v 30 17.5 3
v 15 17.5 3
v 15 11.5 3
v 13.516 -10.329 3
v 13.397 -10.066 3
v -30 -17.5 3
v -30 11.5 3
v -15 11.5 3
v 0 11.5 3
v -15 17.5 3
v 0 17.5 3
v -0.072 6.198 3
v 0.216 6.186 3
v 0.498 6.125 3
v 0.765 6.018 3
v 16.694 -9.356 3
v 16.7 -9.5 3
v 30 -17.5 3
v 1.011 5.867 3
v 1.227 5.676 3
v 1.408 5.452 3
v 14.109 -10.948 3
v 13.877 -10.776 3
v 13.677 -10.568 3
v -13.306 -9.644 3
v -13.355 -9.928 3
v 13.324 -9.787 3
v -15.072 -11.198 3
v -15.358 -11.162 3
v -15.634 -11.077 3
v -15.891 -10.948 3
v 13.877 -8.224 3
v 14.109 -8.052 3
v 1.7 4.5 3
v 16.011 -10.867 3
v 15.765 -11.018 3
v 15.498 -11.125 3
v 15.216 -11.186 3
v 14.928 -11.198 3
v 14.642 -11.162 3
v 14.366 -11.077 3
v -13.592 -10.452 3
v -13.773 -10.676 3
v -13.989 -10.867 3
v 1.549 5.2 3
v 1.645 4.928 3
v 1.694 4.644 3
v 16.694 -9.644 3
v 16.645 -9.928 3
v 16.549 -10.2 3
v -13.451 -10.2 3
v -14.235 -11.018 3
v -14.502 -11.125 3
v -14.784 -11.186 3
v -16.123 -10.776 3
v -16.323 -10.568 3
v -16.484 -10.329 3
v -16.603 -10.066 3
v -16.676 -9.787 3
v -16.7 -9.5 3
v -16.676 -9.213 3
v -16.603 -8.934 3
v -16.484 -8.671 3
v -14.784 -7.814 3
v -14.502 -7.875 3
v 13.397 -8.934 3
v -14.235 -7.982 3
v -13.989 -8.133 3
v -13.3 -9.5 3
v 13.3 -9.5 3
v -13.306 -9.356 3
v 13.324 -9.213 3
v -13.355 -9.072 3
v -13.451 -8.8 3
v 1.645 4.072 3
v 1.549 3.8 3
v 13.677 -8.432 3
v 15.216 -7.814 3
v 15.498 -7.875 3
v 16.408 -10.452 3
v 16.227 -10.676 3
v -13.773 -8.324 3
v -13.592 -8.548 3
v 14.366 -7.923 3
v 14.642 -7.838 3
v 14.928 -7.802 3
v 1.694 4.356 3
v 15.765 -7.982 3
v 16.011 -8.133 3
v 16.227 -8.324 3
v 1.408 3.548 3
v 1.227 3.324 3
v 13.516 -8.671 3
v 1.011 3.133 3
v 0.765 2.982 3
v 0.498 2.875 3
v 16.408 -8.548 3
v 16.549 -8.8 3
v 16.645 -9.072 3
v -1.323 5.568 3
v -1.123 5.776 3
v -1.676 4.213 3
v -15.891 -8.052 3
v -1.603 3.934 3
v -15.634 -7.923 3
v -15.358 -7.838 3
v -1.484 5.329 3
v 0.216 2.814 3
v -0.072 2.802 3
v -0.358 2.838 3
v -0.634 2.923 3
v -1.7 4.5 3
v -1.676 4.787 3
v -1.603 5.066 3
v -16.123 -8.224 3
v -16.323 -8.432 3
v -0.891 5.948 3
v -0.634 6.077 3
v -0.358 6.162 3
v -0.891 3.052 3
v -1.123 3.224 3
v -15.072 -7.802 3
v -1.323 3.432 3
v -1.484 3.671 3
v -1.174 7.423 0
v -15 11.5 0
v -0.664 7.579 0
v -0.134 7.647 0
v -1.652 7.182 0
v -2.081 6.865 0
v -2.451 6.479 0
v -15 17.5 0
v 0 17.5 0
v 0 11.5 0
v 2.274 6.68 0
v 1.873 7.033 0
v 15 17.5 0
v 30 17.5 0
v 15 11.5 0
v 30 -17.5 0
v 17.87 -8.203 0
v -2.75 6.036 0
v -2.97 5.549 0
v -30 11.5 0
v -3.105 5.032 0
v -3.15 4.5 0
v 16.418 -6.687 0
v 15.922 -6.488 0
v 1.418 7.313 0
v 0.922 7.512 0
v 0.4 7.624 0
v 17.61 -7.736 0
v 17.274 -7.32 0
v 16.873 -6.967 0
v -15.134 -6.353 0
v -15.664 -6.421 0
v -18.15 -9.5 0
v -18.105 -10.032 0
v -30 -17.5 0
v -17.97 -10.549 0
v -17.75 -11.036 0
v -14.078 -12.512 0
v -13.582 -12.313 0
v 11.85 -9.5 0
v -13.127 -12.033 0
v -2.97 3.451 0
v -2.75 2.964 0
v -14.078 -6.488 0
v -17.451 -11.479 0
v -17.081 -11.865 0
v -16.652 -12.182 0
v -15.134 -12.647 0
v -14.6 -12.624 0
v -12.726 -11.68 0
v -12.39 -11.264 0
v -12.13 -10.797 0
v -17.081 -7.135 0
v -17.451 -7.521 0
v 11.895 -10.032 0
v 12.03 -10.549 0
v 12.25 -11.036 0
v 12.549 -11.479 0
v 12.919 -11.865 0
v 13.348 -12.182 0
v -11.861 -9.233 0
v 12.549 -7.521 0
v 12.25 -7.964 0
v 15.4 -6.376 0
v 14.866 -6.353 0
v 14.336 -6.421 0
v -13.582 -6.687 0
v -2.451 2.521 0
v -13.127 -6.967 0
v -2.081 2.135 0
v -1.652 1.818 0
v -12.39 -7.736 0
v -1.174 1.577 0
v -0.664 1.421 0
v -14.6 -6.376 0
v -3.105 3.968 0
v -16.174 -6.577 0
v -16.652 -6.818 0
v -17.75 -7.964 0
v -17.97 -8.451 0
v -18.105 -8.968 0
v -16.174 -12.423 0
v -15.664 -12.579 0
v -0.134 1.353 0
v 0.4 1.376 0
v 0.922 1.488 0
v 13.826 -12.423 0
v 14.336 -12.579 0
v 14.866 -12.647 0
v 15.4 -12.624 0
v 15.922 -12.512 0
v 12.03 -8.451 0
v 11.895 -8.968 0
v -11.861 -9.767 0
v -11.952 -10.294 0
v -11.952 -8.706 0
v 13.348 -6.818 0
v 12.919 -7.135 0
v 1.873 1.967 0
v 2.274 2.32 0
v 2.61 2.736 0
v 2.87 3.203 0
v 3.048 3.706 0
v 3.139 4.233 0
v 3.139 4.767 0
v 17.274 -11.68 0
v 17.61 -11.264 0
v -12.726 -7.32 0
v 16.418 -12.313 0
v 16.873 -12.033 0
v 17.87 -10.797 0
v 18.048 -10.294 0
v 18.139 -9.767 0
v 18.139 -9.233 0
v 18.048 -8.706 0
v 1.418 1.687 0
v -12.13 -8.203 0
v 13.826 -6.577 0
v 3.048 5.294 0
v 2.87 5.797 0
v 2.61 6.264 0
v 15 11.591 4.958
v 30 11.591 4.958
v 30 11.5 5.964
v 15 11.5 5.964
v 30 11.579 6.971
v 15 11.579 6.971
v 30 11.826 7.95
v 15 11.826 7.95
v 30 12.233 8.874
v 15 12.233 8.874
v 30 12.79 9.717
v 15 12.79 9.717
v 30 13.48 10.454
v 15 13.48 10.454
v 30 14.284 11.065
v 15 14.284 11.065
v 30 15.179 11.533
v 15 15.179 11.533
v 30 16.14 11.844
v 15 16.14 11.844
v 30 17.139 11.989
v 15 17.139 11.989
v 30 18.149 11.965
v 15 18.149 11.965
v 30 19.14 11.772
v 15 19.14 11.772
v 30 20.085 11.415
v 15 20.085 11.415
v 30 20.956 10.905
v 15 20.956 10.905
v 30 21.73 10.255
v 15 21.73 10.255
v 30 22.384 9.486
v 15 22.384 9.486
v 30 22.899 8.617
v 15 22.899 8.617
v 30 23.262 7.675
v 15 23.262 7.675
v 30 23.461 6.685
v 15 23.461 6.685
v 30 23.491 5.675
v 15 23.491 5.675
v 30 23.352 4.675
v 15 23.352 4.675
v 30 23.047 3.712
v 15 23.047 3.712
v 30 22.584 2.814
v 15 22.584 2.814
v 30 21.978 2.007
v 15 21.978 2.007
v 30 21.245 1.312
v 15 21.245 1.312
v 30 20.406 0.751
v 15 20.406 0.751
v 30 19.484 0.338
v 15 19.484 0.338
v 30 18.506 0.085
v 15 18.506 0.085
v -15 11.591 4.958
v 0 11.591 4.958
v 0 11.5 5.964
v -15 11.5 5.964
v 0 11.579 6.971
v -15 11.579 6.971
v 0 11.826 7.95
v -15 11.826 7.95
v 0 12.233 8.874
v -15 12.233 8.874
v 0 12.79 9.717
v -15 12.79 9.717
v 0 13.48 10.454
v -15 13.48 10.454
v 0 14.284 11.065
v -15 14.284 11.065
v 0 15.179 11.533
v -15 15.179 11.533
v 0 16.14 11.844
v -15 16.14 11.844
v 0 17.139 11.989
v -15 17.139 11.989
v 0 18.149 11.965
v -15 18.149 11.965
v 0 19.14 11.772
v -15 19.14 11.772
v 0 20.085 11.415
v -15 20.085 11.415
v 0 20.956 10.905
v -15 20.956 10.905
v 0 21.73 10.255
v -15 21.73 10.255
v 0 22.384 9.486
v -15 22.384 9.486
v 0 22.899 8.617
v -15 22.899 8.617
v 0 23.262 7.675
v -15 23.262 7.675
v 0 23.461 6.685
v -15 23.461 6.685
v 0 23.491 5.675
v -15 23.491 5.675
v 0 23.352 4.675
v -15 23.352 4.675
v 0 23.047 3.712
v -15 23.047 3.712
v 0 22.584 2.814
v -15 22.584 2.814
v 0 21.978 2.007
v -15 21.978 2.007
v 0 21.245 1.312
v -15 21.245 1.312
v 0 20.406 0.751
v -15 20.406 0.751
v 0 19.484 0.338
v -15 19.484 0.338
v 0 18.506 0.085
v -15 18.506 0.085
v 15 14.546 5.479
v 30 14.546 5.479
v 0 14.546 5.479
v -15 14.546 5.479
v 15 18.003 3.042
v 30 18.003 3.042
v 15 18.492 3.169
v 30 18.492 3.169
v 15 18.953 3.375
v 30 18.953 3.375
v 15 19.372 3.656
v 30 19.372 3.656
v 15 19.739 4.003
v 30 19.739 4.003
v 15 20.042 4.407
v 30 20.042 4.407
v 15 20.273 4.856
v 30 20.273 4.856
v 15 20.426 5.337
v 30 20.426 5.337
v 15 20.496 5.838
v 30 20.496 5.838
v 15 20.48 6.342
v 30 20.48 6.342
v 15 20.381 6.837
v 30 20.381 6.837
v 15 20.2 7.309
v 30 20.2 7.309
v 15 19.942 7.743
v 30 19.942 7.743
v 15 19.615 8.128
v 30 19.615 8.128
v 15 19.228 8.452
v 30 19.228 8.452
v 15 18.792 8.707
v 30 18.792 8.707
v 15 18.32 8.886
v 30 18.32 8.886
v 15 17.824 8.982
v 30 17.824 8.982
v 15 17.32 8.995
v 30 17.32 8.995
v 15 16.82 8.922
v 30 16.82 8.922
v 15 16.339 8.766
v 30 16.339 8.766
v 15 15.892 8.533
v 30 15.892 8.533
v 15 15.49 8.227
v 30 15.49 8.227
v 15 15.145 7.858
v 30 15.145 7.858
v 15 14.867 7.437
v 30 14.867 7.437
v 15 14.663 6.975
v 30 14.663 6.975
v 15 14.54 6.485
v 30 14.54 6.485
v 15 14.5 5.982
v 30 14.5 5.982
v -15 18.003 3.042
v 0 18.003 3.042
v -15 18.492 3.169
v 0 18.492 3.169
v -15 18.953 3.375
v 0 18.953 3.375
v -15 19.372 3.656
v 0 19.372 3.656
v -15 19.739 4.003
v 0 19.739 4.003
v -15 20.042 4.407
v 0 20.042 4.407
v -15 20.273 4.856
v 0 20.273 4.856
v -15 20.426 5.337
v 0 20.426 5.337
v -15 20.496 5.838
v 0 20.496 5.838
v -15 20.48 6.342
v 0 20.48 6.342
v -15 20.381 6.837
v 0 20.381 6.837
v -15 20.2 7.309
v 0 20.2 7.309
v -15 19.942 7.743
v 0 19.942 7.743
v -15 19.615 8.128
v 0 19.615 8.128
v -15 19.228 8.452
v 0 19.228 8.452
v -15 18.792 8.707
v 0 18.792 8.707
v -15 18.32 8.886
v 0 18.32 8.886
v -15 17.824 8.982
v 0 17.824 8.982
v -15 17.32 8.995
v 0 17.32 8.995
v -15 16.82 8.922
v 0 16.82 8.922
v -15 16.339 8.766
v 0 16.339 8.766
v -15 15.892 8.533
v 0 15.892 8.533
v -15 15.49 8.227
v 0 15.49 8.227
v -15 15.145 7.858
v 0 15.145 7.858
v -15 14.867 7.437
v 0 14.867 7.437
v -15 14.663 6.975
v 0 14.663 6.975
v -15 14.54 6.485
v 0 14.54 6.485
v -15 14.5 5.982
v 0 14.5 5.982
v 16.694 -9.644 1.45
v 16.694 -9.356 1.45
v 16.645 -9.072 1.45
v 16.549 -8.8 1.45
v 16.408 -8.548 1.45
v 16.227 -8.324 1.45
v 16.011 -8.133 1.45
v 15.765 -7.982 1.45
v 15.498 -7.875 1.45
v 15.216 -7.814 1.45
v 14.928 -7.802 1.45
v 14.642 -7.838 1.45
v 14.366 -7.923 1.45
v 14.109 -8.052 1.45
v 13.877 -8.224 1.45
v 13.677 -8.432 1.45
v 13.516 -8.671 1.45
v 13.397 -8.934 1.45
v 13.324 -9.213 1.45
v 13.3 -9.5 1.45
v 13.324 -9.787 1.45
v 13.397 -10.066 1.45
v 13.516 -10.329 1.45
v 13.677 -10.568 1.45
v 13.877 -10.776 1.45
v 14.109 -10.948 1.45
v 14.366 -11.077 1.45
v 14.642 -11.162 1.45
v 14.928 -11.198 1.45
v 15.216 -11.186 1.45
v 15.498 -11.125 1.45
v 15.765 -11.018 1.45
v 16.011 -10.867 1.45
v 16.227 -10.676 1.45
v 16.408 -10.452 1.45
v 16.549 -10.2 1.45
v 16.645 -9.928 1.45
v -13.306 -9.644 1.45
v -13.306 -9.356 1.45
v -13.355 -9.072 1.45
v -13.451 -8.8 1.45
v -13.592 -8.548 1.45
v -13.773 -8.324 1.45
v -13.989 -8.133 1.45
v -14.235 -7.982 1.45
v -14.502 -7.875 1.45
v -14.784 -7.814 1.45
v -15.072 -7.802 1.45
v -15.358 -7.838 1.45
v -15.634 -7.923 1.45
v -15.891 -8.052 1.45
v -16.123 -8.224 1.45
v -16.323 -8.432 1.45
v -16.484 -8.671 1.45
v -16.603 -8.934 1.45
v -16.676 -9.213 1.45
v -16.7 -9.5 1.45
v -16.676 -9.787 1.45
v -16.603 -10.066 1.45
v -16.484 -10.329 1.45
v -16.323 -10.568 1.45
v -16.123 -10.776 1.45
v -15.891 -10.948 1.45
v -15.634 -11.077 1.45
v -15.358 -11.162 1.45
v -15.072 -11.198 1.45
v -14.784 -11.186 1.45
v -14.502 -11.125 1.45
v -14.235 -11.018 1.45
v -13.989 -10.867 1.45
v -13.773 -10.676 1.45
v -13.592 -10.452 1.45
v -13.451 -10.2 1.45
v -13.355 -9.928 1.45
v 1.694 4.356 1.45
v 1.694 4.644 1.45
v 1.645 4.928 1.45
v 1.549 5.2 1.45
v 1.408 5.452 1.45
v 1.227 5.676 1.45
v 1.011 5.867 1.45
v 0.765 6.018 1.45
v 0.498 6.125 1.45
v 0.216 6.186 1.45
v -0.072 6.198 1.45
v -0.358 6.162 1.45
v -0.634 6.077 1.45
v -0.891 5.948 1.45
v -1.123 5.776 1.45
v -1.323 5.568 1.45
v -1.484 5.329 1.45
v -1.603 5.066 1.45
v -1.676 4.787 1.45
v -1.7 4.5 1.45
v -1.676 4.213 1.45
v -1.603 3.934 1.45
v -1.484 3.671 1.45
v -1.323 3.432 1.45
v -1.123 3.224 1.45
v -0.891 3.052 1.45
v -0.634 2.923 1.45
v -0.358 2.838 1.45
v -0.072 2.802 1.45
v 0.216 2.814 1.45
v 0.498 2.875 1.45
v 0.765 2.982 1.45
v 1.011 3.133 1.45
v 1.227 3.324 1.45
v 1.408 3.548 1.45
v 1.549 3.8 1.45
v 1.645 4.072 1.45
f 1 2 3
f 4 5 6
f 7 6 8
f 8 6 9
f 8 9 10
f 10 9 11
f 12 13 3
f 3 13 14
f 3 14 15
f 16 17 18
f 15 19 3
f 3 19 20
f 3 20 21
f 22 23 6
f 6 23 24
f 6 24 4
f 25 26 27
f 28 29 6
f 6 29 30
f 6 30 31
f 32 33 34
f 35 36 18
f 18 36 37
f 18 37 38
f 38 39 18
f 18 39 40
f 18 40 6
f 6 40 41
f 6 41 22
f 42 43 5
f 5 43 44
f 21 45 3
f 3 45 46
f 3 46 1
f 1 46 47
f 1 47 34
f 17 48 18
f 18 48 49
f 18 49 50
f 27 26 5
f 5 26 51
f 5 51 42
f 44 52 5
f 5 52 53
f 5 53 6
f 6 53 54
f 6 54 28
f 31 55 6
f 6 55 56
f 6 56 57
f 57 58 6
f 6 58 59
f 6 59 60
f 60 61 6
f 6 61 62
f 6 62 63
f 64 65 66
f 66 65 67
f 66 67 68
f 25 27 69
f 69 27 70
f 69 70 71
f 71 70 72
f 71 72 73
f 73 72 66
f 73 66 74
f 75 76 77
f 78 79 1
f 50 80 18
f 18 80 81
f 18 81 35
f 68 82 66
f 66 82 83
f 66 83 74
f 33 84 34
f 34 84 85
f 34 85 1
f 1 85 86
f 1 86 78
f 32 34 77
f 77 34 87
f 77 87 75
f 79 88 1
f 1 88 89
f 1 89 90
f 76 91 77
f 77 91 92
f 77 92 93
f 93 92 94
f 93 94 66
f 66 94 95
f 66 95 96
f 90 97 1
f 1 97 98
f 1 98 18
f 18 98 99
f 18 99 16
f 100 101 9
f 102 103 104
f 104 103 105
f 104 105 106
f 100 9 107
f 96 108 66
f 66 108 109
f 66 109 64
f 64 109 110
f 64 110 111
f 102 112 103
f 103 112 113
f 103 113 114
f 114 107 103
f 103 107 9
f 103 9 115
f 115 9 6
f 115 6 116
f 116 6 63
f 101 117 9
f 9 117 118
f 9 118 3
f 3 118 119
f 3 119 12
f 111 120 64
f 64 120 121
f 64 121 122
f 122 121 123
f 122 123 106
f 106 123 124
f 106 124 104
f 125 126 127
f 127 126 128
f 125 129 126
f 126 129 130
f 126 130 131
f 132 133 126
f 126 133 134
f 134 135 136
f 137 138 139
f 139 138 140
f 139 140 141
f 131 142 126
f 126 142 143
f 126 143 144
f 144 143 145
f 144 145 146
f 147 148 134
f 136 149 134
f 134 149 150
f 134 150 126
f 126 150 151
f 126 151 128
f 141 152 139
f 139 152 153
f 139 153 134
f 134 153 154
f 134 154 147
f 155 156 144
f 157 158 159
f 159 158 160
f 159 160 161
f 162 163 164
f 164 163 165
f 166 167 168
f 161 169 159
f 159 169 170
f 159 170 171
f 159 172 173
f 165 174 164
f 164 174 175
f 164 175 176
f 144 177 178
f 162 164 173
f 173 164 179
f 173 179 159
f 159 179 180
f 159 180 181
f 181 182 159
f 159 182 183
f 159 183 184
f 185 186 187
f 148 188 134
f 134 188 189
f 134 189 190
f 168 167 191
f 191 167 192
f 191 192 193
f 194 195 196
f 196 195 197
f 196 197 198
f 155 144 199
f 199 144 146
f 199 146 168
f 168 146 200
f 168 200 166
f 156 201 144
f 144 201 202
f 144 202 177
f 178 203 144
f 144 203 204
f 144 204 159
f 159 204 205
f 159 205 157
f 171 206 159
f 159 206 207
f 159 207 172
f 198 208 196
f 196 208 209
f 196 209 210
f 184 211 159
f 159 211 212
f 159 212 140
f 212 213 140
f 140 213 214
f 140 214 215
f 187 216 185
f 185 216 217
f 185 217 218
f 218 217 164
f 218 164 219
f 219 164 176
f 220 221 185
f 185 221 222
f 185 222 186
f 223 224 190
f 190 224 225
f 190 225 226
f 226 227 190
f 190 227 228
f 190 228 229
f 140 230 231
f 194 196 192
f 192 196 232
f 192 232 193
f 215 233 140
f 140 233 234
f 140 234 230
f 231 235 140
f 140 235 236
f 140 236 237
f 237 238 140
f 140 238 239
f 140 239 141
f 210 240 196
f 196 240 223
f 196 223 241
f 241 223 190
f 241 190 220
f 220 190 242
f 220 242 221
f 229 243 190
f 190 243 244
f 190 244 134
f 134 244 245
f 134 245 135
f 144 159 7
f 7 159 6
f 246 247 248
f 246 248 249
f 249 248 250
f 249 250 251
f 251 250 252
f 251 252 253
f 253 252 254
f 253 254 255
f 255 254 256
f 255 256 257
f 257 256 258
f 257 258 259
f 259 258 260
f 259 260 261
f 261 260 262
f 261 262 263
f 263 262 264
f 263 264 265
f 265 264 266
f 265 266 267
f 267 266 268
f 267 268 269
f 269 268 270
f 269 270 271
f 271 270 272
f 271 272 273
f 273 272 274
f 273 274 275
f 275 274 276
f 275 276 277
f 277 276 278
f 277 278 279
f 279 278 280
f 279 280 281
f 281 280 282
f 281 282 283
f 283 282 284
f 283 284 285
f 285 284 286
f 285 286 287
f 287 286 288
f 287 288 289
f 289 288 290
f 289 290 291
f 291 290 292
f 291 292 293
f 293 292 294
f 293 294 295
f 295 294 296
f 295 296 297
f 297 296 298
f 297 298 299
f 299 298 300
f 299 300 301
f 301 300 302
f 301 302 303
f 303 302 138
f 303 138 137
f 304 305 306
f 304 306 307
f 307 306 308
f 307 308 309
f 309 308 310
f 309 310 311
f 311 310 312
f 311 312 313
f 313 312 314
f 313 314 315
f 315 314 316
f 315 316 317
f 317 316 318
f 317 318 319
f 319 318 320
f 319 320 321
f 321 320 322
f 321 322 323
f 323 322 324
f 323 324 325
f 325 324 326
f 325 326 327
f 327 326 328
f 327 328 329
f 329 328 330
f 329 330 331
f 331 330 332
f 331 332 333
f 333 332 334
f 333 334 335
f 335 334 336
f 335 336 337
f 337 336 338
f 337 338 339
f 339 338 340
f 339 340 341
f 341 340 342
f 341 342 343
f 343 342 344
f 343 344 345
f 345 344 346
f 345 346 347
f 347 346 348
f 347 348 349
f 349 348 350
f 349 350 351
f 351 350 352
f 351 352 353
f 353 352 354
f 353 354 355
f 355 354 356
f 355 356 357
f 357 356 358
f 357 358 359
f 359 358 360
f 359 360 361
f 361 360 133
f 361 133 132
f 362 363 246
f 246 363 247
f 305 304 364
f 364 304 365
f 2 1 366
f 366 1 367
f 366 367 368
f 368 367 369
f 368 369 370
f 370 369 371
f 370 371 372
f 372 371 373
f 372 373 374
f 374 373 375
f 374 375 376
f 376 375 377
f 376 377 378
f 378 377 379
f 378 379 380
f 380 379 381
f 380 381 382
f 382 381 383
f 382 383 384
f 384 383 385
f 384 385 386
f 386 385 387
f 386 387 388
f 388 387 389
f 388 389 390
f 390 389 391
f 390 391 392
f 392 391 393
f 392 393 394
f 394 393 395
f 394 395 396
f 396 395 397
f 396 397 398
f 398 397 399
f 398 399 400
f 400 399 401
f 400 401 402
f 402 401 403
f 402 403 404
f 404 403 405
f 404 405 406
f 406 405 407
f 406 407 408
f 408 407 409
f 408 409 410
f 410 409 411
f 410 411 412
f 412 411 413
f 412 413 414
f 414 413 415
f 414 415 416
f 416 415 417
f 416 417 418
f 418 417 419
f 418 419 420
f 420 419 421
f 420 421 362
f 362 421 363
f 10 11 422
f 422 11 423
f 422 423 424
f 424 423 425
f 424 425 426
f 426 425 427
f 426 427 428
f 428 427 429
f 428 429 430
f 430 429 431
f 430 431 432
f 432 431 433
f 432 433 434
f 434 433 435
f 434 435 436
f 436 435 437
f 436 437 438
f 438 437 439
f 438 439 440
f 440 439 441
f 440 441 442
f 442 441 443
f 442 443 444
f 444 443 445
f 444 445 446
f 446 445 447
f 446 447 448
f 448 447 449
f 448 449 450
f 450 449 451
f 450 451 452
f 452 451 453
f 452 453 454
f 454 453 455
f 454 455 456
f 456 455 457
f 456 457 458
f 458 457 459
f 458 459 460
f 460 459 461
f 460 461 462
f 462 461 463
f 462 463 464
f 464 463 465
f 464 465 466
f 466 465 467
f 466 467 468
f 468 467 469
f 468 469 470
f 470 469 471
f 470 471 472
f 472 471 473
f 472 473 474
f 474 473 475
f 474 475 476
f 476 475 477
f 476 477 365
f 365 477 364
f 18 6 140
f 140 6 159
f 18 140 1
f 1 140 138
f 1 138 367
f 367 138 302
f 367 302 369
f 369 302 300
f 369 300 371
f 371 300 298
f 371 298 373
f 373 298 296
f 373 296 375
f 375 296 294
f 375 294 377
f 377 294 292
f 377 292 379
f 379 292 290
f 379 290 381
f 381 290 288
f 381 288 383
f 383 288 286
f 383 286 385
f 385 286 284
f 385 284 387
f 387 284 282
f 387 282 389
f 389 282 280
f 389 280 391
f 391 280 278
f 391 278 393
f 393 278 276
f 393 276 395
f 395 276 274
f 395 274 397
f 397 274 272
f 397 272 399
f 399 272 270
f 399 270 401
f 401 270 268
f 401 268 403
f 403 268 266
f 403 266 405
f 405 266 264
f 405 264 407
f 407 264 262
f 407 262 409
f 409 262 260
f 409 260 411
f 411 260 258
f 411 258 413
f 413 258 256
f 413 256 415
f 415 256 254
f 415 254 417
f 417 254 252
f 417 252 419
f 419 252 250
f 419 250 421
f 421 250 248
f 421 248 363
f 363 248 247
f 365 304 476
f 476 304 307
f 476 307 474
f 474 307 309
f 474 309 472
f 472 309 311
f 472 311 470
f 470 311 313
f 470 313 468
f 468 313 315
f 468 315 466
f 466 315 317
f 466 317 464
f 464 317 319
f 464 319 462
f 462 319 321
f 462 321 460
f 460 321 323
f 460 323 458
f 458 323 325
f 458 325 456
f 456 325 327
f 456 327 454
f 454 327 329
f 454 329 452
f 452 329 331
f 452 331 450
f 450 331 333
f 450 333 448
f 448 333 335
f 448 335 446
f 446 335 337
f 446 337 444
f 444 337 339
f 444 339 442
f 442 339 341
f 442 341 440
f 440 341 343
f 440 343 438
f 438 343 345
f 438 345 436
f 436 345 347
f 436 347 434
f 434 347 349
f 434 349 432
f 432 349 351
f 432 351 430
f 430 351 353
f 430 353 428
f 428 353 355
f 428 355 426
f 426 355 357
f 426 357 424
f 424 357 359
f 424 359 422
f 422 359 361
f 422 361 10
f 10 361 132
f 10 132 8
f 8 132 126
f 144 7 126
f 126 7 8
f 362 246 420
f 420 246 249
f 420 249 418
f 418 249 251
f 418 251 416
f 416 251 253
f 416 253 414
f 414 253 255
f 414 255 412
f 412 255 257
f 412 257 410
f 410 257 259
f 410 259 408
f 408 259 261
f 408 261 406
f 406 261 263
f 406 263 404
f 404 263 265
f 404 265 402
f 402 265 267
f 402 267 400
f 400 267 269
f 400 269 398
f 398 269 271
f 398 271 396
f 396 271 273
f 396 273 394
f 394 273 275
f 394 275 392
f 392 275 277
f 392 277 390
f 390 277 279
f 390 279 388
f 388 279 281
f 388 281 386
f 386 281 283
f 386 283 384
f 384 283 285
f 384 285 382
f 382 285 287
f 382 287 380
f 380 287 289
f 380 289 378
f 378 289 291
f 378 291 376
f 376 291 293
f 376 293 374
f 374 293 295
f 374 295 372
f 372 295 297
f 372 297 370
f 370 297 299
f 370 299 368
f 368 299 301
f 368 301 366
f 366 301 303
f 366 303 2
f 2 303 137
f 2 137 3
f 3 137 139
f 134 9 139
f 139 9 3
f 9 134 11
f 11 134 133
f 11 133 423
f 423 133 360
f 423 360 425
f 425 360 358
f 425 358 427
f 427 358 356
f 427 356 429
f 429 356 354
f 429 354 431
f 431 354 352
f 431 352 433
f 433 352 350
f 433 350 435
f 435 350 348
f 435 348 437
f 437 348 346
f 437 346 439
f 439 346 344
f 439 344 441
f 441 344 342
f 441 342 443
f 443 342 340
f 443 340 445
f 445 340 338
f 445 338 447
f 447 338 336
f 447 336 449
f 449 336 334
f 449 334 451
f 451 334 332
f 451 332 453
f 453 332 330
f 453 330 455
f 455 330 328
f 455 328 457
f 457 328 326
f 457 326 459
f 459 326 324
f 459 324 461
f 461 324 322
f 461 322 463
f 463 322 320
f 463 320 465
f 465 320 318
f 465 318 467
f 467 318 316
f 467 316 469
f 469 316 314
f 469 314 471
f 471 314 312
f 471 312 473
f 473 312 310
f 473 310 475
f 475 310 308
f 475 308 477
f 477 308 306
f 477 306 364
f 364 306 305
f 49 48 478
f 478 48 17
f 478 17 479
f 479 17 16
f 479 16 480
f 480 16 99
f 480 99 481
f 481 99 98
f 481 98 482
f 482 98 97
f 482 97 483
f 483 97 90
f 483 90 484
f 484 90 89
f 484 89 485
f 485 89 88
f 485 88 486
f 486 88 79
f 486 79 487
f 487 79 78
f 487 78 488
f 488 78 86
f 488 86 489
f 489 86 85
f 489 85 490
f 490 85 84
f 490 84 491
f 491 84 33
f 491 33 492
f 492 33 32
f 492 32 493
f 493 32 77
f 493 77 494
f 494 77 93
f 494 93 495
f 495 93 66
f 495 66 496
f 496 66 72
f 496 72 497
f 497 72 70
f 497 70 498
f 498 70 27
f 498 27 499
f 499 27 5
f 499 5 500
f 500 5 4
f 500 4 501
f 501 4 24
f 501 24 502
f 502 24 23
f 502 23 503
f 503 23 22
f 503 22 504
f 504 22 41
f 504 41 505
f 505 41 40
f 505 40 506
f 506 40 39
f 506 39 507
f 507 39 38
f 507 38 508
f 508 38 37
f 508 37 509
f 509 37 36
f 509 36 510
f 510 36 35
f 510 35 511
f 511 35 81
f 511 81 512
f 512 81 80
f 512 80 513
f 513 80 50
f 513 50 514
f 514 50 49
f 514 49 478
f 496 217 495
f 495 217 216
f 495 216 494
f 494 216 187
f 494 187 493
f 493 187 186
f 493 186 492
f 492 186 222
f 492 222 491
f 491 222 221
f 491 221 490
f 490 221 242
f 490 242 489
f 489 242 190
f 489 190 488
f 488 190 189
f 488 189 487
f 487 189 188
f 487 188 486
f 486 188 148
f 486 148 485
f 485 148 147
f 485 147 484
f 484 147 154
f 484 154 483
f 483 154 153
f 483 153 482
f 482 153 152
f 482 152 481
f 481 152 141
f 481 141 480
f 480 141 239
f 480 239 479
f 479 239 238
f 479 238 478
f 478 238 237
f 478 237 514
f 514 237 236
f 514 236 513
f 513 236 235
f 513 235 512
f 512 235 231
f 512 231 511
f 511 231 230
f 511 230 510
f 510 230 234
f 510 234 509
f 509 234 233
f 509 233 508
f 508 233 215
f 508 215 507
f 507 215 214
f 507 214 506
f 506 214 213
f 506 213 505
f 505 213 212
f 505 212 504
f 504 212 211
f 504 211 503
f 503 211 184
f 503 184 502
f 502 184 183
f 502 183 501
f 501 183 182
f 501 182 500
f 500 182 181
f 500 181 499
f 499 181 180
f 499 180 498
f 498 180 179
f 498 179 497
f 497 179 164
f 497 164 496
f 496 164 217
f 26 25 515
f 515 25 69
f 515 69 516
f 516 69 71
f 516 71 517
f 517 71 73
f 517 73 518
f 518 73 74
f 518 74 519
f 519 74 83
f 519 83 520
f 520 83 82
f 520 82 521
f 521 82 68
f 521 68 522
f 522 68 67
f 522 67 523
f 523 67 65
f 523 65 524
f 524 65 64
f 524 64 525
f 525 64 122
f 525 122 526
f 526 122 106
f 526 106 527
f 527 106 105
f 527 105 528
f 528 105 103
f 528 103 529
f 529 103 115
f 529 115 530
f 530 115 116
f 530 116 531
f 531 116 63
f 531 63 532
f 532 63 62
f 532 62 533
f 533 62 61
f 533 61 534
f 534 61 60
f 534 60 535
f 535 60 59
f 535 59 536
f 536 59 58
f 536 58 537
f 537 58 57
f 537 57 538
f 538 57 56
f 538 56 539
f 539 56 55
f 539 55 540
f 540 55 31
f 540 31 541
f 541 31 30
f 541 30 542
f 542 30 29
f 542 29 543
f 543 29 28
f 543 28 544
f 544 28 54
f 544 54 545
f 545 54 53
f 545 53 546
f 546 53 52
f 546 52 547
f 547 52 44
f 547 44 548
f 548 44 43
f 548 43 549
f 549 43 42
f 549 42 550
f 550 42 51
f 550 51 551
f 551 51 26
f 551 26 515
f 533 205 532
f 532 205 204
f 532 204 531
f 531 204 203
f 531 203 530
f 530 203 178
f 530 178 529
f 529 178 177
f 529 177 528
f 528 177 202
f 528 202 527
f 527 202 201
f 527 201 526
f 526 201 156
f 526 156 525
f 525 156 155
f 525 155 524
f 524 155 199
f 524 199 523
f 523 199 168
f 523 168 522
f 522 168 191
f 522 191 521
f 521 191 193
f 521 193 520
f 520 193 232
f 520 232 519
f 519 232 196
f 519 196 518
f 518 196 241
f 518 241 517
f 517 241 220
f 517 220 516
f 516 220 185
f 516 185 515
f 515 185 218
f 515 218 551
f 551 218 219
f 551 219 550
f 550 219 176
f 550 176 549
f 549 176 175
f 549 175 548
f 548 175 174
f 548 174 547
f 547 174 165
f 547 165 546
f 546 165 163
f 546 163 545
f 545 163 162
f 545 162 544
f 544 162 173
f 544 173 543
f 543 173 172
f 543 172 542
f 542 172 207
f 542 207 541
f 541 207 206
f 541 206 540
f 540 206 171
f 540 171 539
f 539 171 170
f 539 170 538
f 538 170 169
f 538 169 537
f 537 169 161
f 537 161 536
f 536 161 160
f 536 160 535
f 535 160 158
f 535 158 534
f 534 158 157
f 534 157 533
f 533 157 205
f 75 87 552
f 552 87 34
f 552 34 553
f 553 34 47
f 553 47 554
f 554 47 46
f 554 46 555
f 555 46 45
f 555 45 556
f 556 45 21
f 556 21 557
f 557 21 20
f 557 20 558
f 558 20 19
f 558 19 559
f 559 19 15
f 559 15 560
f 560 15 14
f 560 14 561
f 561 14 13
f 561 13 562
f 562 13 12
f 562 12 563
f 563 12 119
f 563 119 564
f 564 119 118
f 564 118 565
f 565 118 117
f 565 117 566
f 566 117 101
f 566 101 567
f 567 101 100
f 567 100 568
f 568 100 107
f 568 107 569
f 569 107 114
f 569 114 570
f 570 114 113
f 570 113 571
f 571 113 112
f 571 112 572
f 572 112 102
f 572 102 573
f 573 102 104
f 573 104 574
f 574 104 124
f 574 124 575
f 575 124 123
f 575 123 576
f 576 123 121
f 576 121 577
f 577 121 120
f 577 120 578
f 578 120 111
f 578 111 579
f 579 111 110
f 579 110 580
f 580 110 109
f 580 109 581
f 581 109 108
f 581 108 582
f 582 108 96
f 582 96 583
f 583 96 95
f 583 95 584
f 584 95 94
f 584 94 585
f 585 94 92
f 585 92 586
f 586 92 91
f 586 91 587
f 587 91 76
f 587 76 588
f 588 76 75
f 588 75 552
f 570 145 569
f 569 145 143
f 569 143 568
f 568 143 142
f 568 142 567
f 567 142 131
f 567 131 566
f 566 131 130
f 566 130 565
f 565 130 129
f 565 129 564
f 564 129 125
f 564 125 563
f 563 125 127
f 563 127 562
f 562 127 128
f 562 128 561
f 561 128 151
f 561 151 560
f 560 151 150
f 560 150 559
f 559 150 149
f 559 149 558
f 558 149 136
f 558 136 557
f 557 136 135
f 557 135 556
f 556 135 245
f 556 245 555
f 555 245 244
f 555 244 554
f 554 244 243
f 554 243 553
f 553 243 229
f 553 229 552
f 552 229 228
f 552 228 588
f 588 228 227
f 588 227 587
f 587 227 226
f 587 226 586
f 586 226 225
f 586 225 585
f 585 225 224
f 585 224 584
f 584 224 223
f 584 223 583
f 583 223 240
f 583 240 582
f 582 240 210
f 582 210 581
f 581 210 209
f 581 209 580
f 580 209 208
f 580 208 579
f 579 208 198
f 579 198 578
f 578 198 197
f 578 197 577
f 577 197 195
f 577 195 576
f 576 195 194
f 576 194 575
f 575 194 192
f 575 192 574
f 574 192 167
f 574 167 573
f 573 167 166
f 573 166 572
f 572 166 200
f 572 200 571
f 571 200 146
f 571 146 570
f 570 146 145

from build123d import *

# Parameters (mm, degrees)
SKETCH1_W                                           = 60
SKETCH1_H                                           = 35
BOSS_EXTRUDE1_DEPTH                                 = 3
BOSS_EXTRUDE2_DEPTH                                 = 60
CUT_EXTRUDE4_DEPTH                                  = 49.961719741
CUT_EXTRUDE4_DEPTH_BACK                             = 49.961719741
SKETCH9_W                                           = 15
SKETCH9_H                                           = 12
CSK_FOR_M3_COUNTERSUNK_FLAT_HEAD_SCREW1_D           = 3.4
CSK_FOR_M3_COUNTERSUNK_FLAT_HEAD_SCREW1_DEPTH       = 3
CSK_FOR_M3_COUNTERSUNK_FLAT_HEAD_SCREW1_CSINK_D     = 6.3
CSK_FOR_M3_COUNTERSUNK_FLAT_HEAD_SCREW1_CSINK_ANGLE = 90
CSK_FOR_M3_COUNTERSUNK_FLAT_HEAD_SCREW1_TIP         = 1.021463052


with BuildPart() as part:
    # Sketch1 → Boss-Extrude1 (new body)
    with BuildSketch(Plane.XY):
        Rectangle(SKETCH1_W, SKETCH1_H)
    extrude(amount=BOSS_EXTRUDE1_DEPTH)

    # Sketch5 → Boss-Extrude2 (add)
    with BuildSketch(Plane(origin=(30, 0, 0), x_dir=(0, 0, -1), z_dir=(1, 0, 0))):
        with BuildLine():
            Line((-5.479055467, 14.545576741), (-4.958110934, 11.591153482))
            ThreePointArc((-4.958110934, 11.591153482), (-8.05212086, 23.138155725), (-3, 12.303847577))
            Line((-3, 12.303847577), (-3, 17.5))
            ThreePointArc((-3, 17.5), (-8.298133329, 19.428362829), (-5.479055467, 14.545576741))
        make_face()
    extrude(amount=-BOSS_EXTRUDE2_DEPTH)

    # Sketch9 → Cut-Extrude4 (cut, two sides: drawn at the far end of the back side and taken through both)
    with BuildSketch(Plane(origin=(-12, 0, 3), x_dir=(-1, 0, 0), z_dir=(0, 0, -1)).offset(-CUT_EXTRUDE4_DEPTH_BACK)):
        with Locations((-19.5, 17.5)):
            Rectangle(SKETCH9_W, SKETCH9_H)
        with Locations((10.5, 17.5)):
            Rectangle(SKETCH9_W, SKETCH9_H)
    extrude(amount=CUT_EXTRUDE4_DEPTH + CUT_EXTRUDE4_DEPTH_BACK, mode=Mode.SUBTRACT)

    # CSK for M3 Countersunk Flat Head Screw1
    with Locations(Plane(origin=(0, 0, 0), x_dir=(1, 0, 0), z_dir=(0, 0, -1))):
        with Locations((0, -4.5), (-15, 9.5), (15, 9.5)):
            CounterSinkHole(CSK_FOR_M3_COUNTERSUNK_FLAT_HEAD_SCREW1_D / 2, CSK_FOR_M3_COUNTERSUNK_FLAT_HEAD_SCREW1_CSINK_D / 2, depth=CSK_FOR_M3_COUNTERSUNK_FLAT_HEAD_SCREW1_DEPTH, counter_sink_angle=CSK_FOR_M3_COUNTERSUNK_FLAT_HEAD_SCREW1_CSINK_ANGLE)
            with Locations((0, 0, -(CSK_FOR_M3_COUNTERSUNK_FLAT_HEAD_SCREW1_DEPTH + CSK_FOR_M3_COUNTERSUNK_FLAT_HEAD_SCREW1_TIP / 2))):  # 118° drill point
                Cone(0, CSK_FOR_M3_COUNTERSUNK_FLAT_HEAD_SCREW1_D / 2, CSK_FOR_M3_COUNTERSUNK_FLAT_HEAD_SCREW1_TIP, mode=Mode.SUBTRACT)


solid = part.part
